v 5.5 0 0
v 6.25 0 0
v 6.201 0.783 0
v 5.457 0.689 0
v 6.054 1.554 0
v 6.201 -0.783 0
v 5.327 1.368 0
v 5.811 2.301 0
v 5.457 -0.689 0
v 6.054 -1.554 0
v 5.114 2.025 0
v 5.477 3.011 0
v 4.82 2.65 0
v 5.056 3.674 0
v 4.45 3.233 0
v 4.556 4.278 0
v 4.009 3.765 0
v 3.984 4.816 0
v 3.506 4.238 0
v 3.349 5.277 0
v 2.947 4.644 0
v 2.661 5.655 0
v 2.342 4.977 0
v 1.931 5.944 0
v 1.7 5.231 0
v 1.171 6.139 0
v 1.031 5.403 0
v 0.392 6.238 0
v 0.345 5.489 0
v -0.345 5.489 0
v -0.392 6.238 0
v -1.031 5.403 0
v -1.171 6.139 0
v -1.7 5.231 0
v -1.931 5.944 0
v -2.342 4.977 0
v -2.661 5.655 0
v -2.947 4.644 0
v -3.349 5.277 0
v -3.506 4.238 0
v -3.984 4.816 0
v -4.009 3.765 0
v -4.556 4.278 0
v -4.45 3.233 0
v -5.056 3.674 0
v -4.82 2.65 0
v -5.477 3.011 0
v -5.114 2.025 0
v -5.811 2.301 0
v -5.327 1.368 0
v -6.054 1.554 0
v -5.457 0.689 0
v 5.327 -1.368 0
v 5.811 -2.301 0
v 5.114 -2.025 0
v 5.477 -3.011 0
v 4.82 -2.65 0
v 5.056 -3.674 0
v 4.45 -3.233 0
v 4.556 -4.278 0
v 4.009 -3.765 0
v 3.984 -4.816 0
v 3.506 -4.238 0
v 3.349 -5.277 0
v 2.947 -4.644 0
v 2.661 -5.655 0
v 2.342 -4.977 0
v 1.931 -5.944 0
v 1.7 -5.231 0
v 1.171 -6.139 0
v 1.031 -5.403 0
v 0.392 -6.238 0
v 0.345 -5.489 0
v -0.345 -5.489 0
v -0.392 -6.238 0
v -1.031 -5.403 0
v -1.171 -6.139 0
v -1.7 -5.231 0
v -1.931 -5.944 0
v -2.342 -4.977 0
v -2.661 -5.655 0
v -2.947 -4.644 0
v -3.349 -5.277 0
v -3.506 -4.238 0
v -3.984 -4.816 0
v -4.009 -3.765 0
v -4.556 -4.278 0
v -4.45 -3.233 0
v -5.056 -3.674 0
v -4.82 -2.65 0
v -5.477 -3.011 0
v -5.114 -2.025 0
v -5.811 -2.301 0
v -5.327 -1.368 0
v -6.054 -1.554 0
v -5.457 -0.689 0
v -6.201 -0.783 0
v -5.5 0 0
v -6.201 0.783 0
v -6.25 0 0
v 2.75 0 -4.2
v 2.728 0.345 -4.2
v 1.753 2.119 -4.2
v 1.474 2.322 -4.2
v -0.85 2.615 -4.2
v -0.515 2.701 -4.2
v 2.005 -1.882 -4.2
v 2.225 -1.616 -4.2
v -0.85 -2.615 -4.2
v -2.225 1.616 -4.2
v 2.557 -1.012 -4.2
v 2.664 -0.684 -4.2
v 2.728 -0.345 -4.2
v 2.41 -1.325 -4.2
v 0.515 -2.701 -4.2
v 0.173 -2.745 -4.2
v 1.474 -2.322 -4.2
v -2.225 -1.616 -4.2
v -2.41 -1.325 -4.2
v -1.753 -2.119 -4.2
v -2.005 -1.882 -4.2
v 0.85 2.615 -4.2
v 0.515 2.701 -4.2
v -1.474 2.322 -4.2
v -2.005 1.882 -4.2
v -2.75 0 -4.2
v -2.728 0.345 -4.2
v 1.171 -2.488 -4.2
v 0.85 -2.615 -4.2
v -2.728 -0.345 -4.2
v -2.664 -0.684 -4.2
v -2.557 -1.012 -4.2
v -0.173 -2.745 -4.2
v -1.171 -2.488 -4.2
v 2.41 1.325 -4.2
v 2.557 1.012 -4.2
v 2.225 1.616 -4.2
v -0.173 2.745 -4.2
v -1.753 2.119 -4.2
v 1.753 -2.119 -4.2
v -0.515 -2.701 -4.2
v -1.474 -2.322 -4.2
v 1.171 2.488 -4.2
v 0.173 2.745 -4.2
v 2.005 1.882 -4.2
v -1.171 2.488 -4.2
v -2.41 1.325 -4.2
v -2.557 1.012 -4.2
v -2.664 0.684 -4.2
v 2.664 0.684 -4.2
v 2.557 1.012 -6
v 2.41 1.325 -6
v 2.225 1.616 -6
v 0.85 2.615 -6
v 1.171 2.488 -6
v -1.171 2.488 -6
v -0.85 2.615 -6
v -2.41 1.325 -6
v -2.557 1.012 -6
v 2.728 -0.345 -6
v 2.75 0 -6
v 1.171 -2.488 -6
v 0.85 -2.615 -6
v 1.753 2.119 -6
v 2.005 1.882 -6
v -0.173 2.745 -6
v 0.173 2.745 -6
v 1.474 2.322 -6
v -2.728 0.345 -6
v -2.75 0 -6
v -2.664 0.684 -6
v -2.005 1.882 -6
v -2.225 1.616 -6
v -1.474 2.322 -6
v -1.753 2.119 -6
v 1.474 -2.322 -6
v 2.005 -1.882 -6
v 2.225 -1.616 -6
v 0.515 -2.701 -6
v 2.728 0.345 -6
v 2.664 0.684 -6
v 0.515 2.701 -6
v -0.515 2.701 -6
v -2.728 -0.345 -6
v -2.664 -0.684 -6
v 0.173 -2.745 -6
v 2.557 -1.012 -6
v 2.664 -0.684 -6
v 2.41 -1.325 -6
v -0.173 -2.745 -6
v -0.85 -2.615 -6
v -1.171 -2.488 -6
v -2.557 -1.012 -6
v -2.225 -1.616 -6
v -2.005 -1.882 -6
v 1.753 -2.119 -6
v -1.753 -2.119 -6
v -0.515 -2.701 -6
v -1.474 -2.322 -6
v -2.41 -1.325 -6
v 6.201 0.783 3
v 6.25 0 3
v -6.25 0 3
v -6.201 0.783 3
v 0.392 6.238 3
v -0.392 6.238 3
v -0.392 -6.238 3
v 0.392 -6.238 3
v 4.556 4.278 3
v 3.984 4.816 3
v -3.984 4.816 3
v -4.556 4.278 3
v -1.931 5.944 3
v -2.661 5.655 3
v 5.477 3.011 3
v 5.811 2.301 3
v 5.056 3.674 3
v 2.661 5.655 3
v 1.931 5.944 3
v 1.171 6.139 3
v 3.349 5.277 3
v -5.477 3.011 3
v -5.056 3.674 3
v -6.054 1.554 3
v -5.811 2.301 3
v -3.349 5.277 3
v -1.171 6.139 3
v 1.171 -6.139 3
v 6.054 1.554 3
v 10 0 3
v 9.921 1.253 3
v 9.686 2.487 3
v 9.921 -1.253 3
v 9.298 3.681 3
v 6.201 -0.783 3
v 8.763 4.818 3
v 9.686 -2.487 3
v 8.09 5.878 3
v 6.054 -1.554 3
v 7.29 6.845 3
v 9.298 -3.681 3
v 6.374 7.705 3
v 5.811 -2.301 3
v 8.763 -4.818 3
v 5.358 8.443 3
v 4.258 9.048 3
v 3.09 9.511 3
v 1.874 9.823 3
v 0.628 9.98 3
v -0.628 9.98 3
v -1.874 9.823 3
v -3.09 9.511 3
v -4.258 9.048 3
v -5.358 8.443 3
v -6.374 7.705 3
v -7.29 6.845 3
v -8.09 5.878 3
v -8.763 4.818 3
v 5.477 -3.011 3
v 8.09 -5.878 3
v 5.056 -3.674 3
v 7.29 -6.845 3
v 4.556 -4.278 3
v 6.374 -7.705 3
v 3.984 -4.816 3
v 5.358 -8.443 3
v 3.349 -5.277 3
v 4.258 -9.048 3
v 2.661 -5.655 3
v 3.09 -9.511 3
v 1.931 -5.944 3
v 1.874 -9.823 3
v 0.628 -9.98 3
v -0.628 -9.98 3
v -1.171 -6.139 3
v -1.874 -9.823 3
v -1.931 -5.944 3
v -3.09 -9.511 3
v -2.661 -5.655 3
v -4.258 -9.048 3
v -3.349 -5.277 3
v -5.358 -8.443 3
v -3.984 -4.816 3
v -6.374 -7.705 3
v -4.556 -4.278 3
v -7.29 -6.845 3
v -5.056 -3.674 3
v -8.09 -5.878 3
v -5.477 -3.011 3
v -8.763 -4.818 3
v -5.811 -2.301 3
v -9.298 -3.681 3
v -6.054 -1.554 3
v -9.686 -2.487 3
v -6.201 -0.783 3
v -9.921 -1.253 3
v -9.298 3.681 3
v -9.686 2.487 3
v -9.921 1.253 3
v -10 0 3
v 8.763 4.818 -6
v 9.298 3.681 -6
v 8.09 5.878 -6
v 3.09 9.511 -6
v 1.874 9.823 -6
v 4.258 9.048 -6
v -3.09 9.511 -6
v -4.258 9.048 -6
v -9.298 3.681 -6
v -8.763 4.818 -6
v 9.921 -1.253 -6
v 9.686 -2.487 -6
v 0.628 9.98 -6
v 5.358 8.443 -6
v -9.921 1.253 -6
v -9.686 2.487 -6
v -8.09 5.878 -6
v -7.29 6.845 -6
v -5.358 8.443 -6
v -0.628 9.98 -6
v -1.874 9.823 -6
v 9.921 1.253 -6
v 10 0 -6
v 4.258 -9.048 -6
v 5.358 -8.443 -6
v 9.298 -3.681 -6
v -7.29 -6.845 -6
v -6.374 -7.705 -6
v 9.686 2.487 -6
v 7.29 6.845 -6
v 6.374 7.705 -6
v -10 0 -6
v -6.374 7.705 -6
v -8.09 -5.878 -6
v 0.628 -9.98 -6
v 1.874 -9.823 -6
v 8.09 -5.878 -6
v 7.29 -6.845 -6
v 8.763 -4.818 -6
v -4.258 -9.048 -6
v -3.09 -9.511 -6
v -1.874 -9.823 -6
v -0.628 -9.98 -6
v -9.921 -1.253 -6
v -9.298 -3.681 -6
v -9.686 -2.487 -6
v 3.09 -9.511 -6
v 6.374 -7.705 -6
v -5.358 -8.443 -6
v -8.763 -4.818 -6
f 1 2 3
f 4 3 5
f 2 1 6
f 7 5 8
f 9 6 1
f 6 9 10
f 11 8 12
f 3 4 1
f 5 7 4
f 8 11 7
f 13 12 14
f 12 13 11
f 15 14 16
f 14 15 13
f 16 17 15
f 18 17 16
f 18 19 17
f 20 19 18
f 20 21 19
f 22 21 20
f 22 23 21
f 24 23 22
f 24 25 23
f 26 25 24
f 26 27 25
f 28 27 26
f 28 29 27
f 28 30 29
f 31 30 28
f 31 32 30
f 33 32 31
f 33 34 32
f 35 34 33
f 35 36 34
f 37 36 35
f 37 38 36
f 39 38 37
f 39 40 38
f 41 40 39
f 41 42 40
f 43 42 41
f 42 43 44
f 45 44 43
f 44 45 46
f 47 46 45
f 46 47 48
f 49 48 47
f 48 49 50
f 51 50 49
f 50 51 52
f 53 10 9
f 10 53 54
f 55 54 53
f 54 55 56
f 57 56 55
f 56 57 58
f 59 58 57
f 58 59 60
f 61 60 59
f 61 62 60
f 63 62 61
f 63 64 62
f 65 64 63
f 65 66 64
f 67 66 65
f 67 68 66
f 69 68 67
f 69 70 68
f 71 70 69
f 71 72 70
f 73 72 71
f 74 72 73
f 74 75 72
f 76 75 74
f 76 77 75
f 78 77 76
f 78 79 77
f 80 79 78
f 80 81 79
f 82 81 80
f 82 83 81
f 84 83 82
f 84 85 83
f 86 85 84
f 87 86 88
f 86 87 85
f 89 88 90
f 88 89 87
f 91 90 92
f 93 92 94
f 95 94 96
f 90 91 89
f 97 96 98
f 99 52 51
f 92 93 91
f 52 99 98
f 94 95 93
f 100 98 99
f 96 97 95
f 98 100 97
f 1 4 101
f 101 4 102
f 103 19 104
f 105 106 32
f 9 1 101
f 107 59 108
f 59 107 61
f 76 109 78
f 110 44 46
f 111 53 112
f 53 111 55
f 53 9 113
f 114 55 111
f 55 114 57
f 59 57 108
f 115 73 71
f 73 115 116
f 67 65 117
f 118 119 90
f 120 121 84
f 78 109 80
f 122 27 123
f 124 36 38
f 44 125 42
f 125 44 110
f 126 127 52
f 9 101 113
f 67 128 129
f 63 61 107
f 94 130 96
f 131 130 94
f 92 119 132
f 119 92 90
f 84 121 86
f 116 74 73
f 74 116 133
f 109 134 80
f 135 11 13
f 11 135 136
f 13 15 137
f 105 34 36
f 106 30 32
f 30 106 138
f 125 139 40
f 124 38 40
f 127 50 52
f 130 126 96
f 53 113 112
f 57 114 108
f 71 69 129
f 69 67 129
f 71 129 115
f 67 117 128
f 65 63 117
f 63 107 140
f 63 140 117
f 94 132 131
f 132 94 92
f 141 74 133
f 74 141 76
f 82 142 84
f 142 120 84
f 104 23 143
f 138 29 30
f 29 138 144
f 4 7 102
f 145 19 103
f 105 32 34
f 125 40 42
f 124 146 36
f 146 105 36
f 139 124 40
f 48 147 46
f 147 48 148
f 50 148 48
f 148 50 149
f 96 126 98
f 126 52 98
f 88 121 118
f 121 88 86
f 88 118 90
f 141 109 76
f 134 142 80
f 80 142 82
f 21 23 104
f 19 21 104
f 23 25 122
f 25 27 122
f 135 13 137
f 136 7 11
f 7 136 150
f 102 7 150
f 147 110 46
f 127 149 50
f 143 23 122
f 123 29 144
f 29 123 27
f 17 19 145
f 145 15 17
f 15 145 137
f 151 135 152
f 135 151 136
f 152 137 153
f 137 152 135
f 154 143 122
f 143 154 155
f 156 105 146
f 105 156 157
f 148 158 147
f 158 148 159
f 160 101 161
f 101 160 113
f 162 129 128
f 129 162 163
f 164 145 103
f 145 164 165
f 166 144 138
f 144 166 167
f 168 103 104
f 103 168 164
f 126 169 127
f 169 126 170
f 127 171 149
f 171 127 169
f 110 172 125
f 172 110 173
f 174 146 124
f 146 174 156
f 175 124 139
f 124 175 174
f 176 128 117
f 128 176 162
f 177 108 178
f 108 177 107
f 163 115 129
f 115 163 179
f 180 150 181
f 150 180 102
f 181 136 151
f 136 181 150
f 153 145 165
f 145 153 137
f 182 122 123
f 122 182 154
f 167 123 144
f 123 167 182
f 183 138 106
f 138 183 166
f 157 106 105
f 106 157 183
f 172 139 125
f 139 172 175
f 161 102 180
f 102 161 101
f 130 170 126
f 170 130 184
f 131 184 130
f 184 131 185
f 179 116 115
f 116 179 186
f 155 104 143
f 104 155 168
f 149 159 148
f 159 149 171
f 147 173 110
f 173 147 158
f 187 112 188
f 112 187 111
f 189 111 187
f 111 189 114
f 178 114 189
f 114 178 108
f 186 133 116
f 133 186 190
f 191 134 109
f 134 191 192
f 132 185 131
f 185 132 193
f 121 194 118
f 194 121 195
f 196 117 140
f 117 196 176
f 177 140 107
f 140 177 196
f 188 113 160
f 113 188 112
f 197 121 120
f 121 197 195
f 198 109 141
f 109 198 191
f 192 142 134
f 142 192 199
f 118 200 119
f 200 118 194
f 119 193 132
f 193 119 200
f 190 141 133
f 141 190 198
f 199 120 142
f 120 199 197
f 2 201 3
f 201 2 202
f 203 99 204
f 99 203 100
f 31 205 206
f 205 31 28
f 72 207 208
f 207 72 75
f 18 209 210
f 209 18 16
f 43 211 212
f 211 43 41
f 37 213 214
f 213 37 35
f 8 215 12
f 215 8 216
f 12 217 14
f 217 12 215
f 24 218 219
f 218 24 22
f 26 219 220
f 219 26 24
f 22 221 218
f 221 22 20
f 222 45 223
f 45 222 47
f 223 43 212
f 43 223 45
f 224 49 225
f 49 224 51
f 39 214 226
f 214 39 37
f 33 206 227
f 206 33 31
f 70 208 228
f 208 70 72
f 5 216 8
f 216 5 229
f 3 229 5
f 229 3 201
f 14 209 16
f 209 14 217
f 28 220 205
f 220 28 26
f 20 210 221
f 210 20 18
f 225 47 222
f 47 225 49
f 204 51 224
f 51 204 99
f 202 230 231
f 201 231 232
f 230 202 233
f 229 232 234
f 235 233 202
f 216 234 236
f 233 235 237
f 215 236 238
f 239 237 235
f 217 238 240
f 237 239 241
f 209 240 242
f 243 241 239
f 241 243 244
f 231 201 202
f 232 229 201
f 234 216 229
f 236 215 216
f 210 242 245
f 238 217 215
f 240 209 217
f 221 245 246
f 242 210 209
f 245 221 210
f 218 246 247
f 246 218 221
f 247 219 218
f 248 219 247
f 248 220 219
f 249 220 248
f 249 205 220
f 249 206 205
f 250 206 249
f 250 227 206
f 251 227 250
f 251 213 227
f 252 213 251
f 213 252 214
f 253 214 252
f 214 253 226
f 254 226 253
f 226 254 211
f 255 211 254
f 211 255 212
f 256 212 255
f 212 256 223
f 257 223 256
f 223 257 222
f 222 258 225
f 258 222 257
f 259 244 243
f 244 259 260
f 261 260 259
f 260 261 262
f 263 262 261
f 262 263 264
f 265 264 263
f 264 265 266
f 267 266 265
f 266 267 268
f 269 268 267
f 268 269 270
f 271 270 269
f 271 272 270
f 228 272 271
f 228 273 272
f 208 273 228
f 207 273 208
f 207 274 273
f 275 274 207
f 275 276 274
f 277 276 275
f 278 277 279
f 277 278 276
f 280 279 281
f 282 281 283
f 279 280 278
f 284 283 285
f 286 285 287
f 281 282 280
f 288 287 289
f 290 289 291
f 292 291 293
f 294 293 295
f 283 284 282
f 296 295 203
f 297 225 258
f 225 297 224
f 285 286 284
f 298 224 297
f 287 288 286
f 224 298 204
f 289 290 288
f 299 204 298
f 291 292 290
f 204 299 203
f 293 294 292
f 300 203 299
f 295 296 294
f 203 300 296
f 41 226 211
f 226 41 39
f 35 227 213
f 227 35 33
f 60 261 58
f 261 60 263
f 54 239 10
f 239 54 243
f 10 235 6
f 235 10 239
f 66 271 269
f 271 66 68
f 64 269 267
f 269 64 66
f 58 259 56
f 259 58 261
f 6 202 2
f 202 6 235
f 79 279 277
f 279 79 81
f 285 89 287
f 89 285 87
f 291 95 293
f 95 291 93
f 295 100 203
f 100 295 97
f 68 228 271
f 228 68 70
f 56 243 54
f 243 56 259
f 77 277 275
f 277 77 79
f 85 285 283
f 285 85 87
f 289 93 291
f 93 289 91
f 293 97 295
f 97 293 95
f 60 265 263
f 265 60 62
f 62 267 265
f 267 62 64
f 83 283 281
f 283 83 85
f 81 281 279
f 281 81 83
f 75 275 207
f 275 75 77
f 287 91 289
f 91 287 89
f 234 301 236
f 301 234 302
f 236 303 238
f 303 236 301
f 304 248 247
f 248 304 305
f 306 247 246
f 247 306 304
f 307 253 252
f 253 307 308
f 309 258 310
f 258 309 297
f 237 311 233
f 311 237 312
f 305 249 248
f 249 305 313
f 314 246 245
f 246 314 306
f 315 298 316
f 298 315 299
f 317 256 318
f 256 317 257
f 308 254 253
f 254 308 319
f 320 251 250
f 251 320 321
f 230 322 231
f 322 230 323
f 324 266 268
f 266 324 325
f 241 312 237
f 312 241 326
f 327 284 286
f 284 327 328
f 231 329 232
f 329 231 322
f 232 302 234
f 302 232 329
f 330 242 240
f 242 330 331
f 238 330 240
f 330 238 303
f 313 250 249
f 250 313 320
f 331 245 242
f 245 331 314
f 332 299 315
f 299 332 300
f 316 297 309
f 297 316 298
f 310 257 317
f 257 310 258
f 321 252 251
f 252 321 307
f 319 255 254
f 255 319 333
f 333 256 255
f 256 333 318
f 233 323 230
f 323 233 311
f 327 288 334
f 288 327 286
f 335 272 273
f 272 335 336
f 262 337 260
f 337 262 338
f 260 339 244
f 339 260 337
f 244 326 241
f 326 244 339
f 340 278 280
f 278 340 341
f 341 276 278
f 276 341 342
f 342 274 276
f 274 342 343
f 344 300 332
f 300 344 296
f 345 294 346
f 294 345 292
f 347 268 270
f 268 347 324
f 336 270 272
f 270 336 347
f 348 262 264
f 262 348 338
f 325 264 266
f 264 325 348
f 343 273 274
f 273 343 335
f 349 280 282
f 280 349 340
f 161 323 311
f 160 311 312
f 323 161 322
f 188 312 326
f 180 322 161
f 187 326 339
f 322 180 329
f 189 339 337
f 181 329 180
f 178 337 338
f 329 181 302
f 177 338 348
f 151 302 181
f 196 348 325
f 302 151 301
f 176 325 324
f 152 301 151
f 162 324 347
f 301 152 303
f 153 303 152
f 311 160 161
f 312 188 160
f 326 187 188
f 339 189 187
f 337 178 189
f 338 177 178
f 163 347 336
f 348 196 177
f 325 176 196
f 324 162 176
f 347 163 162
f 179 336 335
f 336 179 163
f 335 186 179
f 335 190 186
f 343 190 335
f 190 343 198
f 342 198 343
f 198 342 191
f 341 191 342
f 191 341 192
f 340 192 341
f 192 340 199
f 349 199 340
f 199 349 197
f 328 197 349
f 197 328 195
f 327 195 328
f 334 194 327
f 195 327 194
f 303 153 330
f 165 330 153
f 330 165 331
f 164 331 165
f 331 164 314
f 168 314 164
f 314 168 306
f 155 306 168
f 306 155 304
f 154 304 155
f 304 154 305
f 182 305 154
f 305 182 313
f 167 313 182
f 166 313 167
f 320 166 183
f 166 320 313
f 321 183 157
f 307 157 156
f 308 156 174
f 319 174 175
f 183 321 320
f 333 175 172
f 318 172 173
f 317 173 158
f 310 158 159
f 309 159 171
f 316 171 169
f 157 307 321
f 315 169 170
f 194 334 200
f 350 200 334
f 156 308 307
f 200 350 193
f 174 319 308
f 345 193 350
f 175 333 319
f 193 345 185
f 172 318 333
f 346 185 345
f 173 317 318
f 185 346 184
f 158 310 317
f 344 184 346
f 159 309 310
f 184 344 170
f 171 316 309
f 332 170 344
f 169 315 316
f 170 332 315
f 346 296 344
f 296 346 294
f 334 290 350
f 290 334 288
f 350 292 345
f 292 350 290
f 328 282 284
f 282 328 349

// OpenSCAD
$fn = 50;

difference() {
	union() {
		translate(v = [0, 0, -6.0]) {
			cylinder(h = 9, r = 10.0);
		}
	}
	union() {
		translate(v = [0, 0, 0]) {
			rotate(a = [0, 0, 0]) {
				difference() {
					union() {
						translate(v = [0, 0, -9.0]) {
							cylinder(h = 9, r = 2.25);
						}
						translate(v = [0, 0, -4.2]) {
							cylinder(h = 4.2, r1 = 2.75, r2 = 5.5);
						}
						translate(v = [0, 0, -9.0]) {
							cylinder(h = 9, r = 2.75);
						}
						translate(v = [0, 0, -9.0]) {
							cylinder(h = 9, r = 2.25);
						}
					}
					union();
				}
			}
		}
		#cylinder(h = 3, r = 6.25);
	}
}
